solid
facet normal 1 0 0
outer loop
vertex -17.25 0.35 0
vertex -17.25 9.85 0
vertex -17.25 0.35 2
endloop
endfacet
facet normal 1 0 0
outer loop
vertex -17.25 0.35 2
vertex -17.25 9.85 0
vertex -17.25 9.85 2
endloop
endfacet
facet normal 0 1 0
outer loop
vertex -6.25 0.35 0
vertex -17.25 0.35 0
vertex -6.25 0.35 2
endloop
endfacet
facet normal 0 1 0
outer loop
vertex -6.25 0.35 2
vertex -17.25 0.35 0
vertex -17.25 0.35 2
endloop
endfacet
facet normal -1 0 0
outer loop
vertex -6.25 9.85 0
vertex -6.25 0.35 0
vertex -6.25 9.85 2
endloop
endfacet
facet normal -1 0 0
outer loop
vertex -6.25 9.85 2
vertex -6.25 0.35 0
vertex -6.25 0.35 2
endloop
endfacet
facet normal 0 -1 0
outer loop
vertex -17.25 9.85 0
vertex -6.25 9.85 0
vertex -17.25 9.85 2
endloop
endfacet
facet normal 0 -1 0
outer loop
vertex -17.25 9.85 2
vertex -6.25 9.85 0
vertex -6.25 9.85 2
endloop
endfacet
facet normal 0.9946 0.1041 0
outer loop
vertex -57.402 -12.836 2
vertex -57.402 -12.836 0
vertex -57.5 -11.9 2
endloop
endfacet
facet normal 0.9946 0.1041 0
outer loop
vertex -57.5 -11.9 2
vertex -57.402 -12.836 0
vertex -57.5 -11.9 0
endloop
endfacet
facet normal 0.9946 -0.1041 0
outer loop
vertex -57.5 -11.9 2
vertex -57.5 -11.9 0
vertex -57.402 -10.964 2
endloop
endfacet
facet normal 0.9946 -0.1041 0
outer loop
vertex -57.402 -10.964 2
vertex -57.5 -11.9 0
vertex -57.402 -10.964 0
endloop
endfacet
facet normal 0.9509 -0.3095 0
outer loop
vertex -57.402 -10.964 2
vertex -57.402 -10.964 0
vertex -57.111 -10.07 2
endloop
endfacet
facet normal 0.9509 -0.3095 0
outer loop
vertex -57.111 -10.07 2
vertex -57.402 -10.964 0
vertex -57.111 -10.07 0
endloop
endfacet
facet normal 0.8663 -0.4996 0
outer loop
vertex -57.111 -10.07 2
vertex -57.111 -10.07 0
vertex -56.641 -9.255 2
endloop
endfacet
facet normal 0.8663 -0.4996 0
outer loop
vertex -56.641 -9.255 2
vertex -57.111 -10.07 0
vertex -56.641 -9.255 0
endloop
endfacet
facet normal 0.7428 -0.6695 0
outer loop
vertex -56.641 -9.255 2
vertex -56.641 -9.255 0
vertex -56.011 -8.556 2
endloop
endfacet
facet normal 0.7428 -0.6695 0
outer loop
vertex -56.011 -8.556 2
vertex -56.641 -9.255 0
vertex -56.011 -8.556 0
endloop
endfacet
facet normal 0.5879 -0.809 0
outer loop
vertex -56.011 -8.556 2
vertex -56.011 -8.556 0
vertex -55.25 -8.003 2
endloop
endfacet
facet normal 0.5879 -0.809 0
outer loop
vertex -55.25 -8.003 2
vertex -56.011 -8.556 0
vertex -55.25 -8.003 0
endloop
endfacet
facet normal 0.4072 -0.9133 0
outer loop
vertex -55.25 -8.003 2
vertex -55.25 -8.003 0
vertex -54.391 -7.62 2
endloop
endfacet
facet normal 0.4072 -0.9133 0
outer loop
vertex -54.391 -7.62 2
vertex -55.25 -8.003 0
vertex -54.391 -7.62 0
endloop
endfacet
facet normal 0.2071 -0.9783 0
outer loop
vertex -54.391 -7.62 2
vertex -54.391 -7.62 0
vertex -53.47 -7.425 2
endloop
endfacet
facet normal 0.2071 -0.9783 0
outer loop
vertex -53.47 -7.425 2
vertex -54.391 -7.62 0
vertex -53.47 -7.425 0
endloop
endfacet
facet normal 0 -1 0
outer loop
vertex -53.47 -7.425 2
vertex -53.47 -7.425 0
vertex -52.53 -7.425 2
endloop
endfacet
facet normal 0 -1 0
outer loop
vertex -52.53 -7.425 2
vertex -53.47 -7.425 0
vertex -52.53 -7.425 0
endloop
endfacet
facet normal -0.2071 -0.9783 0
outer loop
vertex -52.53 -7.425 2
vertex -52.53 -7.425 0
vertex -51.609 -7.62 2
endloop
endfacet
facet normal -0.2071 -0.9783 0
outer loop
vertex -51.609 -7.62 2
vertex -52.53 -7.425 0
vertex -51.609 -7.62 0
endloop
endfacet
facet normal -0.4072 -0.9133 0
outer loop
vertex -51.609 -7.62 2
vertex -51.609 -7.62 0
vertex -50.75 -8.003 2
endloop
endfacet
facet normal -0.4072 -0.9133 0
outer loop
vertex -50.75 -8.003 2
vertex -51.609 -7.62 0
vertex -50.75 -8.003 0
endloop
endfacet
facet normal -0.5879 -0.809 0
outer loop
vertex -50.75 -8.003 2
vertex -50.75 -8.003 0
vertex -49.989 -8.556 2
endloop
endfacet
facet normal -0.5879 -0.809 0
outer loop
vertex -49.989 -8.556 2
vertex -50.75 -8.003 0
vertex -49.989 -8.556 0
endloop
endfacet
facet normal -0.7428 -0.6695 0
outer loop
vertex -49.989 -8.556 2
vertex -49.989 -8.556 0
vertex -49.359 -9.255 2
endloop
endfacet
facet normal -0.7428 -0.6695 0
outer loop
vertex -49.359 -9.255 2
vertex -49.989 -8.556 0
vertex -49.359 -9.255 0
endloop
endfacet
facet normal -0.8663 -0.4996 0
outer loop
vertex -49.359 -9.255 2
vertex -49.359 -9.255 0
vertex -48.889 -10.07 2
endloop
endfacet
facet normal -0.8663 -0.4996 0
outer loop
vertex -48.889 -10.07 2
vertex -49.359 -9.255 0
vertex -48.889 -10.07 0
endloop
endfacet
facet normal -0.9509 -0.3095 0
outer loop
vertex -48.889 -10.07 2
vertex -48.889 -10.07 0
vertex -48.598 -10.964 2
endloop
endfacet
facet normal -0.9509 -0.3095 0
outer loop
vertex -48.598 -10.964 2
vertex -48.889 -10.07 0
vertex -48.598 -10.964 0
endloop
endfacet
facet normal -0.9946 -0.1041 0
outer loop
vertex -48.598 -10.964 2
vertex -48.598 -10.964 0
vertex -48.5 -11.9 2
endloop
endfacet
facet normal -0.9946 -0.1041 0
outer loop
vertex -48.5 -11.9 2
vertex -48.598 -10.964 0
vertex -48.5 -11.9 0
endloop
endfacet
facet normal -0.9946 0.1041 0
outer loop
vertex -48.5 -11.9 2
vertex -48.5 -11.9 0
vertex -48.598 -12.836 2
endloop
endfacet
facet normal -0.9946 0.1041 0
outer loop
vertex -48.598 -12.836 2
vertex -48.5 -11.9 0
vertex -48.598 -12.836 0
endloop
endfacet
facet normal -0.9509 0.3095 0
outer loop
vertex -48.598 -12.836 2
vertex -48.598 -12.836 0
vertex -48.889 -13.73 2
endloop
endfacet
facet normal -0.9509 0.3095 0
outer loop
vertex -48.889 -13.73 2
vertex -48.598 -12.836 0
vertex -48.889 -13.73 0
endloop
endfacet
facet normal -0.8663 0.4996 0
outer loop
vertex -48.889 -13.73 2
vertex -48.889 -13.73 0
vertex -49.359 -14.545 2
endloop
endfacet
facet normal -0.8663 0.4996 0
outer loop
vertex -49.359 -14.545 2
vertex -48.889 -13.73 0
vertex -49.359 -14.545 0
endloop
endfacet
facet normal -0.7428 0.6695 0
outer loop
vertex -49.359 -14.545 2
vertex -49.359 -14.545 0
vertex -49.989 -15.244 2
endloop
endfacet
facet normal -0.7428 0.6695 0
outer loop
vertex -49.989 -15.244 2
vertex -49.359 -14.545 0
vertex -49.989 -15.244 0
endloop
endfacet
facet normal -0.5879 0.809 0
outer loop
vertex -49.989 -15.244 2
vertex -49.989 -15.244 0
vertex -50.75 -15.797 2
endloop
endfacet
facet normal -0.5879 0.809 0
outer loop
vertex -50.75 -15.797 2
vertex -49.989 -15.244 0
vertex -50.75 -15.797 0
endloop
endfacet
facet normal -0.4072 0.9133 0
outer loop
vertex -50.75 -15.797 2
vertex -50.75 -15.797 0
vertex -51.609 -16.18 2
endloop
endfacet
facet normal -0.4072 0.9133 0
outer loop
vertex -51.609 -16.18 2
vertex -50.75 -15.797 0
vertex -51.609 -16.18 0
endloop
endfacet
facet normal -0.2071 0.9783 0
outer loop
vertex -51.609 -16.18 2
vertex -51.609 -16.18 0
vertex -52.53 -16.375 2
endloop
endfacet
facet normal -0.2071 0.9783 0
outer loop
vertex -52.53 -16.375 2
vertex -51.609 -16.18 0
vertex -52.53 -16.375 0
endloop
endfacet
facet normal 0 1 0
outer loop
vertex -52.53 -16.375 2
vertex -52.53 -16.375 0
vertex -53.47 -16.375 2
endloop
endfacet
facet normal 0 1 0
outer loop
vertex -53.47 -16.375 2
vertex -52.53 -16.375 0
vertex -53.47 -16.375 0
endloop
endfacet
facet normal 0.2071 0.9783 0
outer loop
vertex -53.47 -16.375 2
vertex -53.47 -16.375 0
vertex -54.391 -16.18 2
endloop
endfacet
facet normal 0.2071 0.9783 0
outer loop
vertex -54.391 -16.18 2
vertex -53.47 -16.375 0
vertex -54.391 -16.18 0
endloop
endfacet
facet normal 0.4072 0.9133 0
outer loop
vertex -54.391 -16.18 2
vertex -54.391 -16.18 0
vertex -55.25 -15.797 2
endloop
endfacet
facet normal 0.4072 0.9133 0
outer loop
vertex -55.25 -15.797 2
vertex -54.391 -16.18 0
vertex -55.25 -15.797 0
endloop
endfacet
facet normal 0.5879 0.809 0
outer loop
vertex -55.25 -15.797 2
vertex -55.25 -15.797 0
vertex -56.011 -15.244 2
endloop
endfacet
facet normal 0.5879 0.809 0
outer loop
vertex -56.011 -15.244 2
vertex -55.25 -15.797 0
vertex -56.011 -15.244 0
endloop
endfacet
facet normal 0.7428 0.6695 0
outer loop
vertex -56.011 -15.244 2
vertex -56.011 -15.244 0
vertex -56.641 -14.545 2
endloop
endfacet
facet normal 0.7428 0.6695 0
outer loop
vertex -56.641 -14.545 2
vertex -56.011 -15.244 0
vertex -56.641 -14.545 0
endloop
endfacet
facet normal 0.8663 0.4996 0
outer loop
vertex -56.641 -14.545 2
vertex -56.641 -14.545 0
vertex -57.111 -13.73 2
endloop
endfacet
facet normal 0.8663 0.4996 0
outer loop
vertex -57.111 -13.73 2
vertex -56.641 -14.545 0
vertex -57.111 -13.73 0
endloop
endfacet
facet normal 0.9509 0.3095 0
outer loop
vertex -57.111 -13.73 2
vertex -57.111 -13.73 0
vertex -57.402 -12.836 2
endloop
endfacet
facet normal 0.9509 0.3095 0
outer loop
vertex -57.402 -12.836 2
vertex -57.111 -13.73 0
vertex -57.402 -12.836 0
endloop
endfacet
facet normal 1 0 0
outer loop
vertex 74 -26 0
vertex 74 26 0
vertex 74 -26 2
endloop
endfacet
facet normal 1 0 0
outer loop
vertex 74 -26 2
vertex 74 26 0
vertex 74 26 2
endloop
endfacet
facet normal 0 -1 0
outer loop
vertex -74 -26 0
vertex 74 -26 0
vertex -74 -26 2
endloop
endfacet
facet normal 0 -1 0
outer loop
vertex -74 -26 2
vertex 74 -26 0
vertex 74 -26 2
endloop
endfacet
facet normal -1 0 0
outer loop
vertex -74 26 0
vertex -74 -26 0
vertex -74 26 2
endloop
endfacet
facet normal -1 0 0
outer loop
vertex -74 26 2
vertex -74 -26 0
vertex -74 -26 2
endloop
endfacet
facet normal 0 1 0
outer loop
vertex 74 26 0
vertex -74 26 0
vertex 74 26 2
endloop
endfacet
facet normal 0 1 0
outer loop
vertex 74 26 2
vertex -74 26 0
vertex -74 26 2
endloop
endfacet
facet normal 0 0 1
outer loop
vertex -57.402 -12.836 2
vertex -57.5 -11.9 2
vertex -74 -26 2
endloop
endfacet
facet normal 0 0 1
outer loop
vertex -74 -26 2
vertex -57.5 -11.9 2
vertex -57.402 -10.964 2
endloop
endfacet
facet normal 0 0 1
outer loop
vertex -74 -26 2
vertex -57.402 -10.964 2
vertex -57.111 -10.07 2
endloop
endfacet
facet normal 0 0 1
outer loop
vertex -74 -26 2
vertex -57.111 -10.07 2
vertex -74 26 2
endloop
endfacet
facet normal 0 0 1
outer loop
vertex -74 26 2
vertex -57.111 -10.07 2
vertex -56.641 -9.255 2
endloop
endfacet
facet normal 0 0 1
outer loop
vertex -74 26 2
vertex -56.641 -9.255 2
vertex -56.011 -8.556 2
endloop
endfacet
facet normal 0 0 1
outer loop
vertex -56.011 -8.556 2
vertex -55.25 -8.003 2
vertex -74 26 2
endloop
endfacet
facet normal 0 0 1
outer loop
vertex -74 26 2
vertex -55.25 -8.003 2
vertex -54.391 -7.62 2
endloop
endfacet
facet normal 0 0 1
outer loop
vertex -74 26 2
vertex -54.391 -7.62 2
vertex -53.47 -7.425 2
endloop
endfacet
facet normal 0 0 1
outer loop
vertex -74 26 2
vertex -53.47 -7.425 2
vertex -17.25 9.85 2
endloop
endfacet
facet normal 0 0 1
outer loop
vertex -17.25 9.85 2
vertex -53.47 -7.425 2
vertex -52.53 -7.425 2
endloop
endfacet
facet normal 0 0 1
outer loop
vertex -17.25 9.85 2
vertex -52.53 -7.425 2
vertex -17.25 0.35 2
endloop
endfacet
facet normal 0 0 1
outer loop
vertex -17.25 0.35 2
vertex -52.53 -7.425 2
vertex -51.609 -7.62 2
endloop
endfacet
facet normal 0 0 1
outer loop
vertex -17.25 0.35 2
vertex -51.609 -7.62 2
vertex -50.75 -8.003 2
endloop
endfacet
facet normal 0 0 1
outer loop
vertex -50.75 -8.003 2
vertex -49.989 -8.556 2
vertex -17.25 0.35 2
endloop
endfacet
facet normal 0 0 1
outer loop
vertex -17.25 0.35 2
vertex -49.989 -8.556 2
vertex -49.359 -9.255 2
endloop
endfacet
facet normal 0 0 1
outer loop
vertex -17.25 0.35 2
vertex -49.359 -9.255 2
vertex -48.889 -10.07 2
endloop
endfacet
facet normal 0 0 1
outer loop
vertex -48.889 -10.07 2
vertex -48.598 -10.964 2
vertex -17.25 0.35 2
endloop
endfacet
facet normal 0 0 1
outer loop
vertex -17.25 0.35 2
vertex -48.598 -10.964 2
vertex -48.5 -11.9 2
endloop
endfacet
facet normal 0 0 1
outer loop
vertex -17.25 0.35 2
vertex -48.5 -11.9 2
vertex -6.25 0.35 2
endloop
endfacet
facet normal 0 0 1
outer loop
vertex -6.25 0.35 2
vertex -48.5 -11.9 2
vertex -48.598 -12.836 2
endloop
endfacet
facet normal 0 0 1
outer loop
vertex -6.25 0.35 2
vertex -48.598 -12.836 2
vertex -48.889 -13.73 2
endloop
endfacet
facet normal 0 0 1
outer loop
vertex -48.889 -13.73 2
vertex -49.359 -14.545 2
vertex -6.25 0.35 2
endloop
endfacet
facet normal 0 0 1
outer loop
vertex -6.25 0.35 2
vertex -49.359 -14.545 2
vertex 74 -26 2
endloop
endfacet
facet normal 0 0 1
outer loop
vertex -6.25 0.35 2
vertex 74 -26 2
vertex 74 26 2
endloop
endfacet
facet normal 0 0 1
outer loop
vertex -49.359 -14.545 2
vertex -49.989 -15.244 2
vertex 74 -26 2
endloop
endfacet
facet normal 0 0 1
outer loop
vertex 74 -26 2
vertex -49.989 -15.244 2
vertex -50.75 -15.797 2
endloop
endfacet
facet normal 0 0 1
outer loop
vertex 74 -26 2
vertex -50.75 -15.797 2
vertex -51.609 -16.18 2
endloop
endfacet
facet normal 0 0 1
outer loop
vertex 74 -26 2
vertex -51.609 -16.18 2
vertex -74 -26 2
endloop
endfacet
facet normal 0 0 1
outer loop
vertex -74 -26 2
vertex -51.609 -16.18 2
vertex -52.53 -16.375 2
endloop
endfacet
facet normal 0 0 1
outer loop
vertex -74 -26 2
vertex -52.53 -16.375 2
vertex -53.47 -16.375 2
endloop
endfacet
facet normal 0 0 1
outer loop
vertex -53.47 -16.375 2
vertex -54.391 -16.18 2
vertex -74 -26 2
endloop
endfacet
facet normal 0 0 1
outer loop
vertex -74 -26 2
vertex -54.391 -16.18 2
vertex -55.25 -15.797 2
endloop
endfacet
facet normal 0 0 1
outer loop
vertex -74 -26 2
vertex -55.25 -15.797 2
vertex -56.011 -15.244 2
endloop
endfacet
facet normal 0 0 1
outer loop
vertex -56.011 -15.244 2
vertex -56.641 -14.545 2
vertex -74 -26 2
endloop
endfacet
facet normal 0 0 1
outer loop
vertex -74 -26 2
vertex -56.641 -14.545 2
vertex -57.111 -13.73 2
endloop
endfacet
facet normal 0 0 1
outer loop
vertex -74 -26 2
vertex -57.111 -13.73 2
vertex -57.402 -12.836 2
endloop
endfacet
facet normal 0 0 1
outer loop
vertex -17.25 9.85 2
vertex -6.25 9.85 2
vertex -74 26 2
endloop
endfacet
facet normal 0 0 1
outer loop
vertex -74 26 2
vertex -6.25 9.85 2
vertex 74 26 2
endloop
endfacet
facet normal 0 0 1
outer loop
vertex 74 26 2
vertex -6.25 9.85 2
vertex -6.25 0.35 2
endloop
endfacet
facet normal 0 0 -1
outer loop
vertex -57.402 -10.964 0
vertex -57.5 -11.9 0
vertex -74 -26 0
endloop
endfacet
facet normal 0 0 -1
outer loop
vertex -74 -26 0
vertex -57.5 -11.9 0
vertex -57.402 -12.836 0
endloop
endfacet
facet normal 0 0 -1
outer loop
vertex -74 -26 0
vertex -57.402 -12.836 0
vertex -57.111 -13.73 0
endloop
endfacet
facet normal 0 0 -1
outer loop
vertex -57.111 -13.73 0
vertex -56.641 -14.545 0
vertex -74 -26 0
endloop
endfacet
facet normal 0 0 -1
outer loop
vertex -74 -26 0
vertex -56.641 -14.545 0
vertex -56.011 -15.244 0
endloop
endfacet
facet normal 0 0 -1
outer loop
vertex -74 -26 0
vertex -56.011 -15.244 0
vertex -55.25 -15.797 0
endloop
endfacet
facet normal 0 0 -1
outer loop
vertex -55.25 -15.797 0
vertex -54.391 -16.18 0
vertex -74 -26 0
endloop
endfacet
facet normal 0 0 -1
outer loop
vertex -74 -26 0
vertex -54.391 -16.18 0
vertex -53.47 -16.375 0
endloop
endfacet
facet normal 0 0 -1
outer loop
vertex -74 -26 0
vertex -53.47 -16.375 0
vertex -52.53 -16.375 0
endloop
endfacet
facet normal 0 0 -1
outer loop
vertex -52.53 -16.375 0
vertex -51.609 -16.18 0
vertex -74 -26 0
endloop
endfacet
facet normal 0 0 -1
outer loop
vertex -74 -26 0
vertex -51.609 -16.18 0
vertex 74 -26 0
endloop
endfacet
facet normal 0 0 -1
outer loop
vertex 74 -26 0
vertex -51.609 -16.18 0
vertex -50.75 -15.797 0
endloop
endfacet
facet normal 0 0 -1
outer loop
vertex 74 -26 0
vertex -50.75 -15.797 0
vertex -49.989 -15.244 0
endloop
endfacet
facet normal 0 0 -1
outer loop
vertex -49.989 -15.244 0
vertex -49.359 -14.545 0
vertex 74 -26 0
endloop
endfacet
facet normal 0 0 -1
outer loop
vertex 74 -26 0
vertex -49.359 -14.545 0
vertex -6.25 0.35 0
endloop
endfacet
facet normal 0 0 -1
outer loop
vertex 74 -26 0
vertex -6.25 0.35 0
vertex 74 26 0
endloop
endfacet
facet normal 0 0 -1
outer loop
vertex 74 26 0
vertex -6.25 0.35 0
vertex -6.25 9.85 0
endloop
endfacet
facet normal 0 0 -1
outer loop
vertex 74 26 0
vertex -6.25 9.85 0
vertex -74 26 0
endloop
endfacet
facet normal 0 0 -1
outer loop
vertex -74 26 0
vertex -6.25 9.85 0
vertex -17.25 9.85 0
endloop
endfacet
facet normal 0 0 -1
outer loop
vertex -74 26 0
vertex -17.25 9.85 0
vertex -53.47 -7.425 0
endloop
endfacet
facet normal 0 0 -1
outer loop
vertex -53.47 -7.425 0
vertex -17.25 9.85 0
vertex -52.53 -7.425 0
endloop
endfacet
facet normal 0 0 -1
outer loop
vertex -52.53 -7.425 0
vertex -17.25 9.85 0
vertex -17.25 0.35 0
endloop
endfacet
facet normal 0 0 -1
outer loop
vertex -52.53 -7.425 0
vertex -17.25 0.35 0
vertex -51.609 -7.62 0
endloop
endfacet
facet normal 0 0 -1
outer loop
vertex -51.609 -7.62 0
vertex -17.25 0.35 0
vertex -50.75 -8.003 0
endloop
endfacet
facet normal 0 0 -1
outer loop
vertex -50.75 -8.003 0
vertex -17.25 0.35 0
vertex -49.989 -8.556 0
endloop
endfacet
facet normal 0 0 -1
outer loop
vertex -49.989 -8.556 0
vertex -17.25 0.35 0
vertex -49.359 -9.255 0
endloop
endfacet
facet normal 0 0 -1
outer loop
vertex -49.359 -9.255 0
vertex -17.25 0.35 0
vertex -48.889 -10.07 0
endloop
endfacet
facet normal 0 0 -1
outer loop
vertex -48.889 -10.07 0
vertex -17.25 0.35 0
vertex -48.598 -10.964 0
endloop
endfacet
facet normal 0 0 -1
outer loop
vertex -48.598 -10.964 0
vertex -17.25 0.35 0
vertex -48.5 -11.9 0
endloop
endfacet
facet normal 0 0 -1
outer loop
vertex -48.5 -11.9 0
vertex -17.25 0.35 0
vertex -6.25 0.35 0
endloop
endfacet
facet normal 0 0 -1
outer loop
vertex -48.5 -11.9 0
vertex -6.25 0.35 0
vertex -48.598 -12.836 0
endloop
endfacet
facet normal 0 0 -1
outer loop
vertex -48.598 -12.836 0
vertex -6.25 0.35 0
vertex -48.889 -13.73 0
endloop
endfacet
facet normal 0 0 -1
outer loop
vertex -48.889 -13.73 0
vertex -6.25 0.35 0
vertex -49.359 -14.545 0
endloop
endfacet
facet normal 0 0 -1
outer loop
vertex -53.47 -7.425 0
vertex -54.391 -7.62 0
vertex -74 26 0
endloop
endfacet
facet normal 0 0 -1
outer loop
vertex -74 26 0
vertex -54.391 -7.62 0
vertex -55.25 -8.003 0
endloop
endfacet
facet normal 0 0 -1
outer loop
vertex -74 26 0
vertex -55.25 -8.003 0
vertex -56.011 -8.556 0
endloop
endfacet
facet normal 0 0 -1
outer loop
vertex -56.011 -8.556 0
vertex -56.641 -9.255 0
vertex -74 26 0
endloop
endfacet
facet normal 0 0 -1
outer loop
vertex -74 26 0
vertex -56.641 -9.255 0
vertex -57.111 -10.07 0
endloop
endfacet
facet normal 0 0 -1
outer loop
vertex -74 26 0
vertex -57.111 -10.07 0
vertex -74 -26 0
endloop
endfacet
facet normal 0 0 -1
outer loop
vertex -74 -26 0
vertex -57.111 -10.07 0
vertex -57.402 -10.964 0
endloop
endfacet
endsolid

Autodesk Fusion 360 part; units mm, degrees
sketch "Skizze1" plane through (0, 0, 0) normal (0, 0, 1) x (1, 0, 0)
  line L0 (74, -26) -> (-74, -26)
  line L1 (-74, -26) -> (-74, 26)
  line L2 (-74, 26) -> (74, 26)
  line L3 (74, 26) -> (74, -26)
  line L4 (74, -26) -> (-74, 26) construction
  line L5 (-74, -26) -> (74, 26) construction
  line L6 (-11.75, 61.7133) -> (-11.75, -53.3839) construction
  line L7 (-97.1763, 5.1) -> (112.5731, 5.1) construction
  line L8 (-53, 57.008) -> (-53, -45) construction
  line L9 (-95.9922, -11.9) -> (-35, -11.9) construction
  circle A0 centre (-53, -11.9) radius 4.5
  line L10 (-6.25, 0.35) -> (-17.25, 0.35)
  line L11 (-17.25, 0.35) -> (-17.25, 9.85)
  line L12 (-17.25, 9.85) -> (-6.25, 9.85)
  line L13 (-6.25, 9.85) -> (-6.25, 0.35)
  line L14 (-6.25, 0.35) -> (-17.25, 9.85) construction
  line L15 (-17.25, 0.35) -> (-6.25, 9.85) construction
  point P0 (-53, -11.9)
  point P1 (-11.75, 5.1)
  dimension "d1" = 148
  dimension "d2" = 52
  dimension "d3" = 62.25
  dimension "d4" = 20.9
  dimension "d6" = 21
  dimension "d8" = 37.9
  dimension "d9" = 9
  dimension "d12" = 11
  dimension "d13" = 9.5
extrude "Extrusion1" add sketch "Skizze1" along normal blind 2
